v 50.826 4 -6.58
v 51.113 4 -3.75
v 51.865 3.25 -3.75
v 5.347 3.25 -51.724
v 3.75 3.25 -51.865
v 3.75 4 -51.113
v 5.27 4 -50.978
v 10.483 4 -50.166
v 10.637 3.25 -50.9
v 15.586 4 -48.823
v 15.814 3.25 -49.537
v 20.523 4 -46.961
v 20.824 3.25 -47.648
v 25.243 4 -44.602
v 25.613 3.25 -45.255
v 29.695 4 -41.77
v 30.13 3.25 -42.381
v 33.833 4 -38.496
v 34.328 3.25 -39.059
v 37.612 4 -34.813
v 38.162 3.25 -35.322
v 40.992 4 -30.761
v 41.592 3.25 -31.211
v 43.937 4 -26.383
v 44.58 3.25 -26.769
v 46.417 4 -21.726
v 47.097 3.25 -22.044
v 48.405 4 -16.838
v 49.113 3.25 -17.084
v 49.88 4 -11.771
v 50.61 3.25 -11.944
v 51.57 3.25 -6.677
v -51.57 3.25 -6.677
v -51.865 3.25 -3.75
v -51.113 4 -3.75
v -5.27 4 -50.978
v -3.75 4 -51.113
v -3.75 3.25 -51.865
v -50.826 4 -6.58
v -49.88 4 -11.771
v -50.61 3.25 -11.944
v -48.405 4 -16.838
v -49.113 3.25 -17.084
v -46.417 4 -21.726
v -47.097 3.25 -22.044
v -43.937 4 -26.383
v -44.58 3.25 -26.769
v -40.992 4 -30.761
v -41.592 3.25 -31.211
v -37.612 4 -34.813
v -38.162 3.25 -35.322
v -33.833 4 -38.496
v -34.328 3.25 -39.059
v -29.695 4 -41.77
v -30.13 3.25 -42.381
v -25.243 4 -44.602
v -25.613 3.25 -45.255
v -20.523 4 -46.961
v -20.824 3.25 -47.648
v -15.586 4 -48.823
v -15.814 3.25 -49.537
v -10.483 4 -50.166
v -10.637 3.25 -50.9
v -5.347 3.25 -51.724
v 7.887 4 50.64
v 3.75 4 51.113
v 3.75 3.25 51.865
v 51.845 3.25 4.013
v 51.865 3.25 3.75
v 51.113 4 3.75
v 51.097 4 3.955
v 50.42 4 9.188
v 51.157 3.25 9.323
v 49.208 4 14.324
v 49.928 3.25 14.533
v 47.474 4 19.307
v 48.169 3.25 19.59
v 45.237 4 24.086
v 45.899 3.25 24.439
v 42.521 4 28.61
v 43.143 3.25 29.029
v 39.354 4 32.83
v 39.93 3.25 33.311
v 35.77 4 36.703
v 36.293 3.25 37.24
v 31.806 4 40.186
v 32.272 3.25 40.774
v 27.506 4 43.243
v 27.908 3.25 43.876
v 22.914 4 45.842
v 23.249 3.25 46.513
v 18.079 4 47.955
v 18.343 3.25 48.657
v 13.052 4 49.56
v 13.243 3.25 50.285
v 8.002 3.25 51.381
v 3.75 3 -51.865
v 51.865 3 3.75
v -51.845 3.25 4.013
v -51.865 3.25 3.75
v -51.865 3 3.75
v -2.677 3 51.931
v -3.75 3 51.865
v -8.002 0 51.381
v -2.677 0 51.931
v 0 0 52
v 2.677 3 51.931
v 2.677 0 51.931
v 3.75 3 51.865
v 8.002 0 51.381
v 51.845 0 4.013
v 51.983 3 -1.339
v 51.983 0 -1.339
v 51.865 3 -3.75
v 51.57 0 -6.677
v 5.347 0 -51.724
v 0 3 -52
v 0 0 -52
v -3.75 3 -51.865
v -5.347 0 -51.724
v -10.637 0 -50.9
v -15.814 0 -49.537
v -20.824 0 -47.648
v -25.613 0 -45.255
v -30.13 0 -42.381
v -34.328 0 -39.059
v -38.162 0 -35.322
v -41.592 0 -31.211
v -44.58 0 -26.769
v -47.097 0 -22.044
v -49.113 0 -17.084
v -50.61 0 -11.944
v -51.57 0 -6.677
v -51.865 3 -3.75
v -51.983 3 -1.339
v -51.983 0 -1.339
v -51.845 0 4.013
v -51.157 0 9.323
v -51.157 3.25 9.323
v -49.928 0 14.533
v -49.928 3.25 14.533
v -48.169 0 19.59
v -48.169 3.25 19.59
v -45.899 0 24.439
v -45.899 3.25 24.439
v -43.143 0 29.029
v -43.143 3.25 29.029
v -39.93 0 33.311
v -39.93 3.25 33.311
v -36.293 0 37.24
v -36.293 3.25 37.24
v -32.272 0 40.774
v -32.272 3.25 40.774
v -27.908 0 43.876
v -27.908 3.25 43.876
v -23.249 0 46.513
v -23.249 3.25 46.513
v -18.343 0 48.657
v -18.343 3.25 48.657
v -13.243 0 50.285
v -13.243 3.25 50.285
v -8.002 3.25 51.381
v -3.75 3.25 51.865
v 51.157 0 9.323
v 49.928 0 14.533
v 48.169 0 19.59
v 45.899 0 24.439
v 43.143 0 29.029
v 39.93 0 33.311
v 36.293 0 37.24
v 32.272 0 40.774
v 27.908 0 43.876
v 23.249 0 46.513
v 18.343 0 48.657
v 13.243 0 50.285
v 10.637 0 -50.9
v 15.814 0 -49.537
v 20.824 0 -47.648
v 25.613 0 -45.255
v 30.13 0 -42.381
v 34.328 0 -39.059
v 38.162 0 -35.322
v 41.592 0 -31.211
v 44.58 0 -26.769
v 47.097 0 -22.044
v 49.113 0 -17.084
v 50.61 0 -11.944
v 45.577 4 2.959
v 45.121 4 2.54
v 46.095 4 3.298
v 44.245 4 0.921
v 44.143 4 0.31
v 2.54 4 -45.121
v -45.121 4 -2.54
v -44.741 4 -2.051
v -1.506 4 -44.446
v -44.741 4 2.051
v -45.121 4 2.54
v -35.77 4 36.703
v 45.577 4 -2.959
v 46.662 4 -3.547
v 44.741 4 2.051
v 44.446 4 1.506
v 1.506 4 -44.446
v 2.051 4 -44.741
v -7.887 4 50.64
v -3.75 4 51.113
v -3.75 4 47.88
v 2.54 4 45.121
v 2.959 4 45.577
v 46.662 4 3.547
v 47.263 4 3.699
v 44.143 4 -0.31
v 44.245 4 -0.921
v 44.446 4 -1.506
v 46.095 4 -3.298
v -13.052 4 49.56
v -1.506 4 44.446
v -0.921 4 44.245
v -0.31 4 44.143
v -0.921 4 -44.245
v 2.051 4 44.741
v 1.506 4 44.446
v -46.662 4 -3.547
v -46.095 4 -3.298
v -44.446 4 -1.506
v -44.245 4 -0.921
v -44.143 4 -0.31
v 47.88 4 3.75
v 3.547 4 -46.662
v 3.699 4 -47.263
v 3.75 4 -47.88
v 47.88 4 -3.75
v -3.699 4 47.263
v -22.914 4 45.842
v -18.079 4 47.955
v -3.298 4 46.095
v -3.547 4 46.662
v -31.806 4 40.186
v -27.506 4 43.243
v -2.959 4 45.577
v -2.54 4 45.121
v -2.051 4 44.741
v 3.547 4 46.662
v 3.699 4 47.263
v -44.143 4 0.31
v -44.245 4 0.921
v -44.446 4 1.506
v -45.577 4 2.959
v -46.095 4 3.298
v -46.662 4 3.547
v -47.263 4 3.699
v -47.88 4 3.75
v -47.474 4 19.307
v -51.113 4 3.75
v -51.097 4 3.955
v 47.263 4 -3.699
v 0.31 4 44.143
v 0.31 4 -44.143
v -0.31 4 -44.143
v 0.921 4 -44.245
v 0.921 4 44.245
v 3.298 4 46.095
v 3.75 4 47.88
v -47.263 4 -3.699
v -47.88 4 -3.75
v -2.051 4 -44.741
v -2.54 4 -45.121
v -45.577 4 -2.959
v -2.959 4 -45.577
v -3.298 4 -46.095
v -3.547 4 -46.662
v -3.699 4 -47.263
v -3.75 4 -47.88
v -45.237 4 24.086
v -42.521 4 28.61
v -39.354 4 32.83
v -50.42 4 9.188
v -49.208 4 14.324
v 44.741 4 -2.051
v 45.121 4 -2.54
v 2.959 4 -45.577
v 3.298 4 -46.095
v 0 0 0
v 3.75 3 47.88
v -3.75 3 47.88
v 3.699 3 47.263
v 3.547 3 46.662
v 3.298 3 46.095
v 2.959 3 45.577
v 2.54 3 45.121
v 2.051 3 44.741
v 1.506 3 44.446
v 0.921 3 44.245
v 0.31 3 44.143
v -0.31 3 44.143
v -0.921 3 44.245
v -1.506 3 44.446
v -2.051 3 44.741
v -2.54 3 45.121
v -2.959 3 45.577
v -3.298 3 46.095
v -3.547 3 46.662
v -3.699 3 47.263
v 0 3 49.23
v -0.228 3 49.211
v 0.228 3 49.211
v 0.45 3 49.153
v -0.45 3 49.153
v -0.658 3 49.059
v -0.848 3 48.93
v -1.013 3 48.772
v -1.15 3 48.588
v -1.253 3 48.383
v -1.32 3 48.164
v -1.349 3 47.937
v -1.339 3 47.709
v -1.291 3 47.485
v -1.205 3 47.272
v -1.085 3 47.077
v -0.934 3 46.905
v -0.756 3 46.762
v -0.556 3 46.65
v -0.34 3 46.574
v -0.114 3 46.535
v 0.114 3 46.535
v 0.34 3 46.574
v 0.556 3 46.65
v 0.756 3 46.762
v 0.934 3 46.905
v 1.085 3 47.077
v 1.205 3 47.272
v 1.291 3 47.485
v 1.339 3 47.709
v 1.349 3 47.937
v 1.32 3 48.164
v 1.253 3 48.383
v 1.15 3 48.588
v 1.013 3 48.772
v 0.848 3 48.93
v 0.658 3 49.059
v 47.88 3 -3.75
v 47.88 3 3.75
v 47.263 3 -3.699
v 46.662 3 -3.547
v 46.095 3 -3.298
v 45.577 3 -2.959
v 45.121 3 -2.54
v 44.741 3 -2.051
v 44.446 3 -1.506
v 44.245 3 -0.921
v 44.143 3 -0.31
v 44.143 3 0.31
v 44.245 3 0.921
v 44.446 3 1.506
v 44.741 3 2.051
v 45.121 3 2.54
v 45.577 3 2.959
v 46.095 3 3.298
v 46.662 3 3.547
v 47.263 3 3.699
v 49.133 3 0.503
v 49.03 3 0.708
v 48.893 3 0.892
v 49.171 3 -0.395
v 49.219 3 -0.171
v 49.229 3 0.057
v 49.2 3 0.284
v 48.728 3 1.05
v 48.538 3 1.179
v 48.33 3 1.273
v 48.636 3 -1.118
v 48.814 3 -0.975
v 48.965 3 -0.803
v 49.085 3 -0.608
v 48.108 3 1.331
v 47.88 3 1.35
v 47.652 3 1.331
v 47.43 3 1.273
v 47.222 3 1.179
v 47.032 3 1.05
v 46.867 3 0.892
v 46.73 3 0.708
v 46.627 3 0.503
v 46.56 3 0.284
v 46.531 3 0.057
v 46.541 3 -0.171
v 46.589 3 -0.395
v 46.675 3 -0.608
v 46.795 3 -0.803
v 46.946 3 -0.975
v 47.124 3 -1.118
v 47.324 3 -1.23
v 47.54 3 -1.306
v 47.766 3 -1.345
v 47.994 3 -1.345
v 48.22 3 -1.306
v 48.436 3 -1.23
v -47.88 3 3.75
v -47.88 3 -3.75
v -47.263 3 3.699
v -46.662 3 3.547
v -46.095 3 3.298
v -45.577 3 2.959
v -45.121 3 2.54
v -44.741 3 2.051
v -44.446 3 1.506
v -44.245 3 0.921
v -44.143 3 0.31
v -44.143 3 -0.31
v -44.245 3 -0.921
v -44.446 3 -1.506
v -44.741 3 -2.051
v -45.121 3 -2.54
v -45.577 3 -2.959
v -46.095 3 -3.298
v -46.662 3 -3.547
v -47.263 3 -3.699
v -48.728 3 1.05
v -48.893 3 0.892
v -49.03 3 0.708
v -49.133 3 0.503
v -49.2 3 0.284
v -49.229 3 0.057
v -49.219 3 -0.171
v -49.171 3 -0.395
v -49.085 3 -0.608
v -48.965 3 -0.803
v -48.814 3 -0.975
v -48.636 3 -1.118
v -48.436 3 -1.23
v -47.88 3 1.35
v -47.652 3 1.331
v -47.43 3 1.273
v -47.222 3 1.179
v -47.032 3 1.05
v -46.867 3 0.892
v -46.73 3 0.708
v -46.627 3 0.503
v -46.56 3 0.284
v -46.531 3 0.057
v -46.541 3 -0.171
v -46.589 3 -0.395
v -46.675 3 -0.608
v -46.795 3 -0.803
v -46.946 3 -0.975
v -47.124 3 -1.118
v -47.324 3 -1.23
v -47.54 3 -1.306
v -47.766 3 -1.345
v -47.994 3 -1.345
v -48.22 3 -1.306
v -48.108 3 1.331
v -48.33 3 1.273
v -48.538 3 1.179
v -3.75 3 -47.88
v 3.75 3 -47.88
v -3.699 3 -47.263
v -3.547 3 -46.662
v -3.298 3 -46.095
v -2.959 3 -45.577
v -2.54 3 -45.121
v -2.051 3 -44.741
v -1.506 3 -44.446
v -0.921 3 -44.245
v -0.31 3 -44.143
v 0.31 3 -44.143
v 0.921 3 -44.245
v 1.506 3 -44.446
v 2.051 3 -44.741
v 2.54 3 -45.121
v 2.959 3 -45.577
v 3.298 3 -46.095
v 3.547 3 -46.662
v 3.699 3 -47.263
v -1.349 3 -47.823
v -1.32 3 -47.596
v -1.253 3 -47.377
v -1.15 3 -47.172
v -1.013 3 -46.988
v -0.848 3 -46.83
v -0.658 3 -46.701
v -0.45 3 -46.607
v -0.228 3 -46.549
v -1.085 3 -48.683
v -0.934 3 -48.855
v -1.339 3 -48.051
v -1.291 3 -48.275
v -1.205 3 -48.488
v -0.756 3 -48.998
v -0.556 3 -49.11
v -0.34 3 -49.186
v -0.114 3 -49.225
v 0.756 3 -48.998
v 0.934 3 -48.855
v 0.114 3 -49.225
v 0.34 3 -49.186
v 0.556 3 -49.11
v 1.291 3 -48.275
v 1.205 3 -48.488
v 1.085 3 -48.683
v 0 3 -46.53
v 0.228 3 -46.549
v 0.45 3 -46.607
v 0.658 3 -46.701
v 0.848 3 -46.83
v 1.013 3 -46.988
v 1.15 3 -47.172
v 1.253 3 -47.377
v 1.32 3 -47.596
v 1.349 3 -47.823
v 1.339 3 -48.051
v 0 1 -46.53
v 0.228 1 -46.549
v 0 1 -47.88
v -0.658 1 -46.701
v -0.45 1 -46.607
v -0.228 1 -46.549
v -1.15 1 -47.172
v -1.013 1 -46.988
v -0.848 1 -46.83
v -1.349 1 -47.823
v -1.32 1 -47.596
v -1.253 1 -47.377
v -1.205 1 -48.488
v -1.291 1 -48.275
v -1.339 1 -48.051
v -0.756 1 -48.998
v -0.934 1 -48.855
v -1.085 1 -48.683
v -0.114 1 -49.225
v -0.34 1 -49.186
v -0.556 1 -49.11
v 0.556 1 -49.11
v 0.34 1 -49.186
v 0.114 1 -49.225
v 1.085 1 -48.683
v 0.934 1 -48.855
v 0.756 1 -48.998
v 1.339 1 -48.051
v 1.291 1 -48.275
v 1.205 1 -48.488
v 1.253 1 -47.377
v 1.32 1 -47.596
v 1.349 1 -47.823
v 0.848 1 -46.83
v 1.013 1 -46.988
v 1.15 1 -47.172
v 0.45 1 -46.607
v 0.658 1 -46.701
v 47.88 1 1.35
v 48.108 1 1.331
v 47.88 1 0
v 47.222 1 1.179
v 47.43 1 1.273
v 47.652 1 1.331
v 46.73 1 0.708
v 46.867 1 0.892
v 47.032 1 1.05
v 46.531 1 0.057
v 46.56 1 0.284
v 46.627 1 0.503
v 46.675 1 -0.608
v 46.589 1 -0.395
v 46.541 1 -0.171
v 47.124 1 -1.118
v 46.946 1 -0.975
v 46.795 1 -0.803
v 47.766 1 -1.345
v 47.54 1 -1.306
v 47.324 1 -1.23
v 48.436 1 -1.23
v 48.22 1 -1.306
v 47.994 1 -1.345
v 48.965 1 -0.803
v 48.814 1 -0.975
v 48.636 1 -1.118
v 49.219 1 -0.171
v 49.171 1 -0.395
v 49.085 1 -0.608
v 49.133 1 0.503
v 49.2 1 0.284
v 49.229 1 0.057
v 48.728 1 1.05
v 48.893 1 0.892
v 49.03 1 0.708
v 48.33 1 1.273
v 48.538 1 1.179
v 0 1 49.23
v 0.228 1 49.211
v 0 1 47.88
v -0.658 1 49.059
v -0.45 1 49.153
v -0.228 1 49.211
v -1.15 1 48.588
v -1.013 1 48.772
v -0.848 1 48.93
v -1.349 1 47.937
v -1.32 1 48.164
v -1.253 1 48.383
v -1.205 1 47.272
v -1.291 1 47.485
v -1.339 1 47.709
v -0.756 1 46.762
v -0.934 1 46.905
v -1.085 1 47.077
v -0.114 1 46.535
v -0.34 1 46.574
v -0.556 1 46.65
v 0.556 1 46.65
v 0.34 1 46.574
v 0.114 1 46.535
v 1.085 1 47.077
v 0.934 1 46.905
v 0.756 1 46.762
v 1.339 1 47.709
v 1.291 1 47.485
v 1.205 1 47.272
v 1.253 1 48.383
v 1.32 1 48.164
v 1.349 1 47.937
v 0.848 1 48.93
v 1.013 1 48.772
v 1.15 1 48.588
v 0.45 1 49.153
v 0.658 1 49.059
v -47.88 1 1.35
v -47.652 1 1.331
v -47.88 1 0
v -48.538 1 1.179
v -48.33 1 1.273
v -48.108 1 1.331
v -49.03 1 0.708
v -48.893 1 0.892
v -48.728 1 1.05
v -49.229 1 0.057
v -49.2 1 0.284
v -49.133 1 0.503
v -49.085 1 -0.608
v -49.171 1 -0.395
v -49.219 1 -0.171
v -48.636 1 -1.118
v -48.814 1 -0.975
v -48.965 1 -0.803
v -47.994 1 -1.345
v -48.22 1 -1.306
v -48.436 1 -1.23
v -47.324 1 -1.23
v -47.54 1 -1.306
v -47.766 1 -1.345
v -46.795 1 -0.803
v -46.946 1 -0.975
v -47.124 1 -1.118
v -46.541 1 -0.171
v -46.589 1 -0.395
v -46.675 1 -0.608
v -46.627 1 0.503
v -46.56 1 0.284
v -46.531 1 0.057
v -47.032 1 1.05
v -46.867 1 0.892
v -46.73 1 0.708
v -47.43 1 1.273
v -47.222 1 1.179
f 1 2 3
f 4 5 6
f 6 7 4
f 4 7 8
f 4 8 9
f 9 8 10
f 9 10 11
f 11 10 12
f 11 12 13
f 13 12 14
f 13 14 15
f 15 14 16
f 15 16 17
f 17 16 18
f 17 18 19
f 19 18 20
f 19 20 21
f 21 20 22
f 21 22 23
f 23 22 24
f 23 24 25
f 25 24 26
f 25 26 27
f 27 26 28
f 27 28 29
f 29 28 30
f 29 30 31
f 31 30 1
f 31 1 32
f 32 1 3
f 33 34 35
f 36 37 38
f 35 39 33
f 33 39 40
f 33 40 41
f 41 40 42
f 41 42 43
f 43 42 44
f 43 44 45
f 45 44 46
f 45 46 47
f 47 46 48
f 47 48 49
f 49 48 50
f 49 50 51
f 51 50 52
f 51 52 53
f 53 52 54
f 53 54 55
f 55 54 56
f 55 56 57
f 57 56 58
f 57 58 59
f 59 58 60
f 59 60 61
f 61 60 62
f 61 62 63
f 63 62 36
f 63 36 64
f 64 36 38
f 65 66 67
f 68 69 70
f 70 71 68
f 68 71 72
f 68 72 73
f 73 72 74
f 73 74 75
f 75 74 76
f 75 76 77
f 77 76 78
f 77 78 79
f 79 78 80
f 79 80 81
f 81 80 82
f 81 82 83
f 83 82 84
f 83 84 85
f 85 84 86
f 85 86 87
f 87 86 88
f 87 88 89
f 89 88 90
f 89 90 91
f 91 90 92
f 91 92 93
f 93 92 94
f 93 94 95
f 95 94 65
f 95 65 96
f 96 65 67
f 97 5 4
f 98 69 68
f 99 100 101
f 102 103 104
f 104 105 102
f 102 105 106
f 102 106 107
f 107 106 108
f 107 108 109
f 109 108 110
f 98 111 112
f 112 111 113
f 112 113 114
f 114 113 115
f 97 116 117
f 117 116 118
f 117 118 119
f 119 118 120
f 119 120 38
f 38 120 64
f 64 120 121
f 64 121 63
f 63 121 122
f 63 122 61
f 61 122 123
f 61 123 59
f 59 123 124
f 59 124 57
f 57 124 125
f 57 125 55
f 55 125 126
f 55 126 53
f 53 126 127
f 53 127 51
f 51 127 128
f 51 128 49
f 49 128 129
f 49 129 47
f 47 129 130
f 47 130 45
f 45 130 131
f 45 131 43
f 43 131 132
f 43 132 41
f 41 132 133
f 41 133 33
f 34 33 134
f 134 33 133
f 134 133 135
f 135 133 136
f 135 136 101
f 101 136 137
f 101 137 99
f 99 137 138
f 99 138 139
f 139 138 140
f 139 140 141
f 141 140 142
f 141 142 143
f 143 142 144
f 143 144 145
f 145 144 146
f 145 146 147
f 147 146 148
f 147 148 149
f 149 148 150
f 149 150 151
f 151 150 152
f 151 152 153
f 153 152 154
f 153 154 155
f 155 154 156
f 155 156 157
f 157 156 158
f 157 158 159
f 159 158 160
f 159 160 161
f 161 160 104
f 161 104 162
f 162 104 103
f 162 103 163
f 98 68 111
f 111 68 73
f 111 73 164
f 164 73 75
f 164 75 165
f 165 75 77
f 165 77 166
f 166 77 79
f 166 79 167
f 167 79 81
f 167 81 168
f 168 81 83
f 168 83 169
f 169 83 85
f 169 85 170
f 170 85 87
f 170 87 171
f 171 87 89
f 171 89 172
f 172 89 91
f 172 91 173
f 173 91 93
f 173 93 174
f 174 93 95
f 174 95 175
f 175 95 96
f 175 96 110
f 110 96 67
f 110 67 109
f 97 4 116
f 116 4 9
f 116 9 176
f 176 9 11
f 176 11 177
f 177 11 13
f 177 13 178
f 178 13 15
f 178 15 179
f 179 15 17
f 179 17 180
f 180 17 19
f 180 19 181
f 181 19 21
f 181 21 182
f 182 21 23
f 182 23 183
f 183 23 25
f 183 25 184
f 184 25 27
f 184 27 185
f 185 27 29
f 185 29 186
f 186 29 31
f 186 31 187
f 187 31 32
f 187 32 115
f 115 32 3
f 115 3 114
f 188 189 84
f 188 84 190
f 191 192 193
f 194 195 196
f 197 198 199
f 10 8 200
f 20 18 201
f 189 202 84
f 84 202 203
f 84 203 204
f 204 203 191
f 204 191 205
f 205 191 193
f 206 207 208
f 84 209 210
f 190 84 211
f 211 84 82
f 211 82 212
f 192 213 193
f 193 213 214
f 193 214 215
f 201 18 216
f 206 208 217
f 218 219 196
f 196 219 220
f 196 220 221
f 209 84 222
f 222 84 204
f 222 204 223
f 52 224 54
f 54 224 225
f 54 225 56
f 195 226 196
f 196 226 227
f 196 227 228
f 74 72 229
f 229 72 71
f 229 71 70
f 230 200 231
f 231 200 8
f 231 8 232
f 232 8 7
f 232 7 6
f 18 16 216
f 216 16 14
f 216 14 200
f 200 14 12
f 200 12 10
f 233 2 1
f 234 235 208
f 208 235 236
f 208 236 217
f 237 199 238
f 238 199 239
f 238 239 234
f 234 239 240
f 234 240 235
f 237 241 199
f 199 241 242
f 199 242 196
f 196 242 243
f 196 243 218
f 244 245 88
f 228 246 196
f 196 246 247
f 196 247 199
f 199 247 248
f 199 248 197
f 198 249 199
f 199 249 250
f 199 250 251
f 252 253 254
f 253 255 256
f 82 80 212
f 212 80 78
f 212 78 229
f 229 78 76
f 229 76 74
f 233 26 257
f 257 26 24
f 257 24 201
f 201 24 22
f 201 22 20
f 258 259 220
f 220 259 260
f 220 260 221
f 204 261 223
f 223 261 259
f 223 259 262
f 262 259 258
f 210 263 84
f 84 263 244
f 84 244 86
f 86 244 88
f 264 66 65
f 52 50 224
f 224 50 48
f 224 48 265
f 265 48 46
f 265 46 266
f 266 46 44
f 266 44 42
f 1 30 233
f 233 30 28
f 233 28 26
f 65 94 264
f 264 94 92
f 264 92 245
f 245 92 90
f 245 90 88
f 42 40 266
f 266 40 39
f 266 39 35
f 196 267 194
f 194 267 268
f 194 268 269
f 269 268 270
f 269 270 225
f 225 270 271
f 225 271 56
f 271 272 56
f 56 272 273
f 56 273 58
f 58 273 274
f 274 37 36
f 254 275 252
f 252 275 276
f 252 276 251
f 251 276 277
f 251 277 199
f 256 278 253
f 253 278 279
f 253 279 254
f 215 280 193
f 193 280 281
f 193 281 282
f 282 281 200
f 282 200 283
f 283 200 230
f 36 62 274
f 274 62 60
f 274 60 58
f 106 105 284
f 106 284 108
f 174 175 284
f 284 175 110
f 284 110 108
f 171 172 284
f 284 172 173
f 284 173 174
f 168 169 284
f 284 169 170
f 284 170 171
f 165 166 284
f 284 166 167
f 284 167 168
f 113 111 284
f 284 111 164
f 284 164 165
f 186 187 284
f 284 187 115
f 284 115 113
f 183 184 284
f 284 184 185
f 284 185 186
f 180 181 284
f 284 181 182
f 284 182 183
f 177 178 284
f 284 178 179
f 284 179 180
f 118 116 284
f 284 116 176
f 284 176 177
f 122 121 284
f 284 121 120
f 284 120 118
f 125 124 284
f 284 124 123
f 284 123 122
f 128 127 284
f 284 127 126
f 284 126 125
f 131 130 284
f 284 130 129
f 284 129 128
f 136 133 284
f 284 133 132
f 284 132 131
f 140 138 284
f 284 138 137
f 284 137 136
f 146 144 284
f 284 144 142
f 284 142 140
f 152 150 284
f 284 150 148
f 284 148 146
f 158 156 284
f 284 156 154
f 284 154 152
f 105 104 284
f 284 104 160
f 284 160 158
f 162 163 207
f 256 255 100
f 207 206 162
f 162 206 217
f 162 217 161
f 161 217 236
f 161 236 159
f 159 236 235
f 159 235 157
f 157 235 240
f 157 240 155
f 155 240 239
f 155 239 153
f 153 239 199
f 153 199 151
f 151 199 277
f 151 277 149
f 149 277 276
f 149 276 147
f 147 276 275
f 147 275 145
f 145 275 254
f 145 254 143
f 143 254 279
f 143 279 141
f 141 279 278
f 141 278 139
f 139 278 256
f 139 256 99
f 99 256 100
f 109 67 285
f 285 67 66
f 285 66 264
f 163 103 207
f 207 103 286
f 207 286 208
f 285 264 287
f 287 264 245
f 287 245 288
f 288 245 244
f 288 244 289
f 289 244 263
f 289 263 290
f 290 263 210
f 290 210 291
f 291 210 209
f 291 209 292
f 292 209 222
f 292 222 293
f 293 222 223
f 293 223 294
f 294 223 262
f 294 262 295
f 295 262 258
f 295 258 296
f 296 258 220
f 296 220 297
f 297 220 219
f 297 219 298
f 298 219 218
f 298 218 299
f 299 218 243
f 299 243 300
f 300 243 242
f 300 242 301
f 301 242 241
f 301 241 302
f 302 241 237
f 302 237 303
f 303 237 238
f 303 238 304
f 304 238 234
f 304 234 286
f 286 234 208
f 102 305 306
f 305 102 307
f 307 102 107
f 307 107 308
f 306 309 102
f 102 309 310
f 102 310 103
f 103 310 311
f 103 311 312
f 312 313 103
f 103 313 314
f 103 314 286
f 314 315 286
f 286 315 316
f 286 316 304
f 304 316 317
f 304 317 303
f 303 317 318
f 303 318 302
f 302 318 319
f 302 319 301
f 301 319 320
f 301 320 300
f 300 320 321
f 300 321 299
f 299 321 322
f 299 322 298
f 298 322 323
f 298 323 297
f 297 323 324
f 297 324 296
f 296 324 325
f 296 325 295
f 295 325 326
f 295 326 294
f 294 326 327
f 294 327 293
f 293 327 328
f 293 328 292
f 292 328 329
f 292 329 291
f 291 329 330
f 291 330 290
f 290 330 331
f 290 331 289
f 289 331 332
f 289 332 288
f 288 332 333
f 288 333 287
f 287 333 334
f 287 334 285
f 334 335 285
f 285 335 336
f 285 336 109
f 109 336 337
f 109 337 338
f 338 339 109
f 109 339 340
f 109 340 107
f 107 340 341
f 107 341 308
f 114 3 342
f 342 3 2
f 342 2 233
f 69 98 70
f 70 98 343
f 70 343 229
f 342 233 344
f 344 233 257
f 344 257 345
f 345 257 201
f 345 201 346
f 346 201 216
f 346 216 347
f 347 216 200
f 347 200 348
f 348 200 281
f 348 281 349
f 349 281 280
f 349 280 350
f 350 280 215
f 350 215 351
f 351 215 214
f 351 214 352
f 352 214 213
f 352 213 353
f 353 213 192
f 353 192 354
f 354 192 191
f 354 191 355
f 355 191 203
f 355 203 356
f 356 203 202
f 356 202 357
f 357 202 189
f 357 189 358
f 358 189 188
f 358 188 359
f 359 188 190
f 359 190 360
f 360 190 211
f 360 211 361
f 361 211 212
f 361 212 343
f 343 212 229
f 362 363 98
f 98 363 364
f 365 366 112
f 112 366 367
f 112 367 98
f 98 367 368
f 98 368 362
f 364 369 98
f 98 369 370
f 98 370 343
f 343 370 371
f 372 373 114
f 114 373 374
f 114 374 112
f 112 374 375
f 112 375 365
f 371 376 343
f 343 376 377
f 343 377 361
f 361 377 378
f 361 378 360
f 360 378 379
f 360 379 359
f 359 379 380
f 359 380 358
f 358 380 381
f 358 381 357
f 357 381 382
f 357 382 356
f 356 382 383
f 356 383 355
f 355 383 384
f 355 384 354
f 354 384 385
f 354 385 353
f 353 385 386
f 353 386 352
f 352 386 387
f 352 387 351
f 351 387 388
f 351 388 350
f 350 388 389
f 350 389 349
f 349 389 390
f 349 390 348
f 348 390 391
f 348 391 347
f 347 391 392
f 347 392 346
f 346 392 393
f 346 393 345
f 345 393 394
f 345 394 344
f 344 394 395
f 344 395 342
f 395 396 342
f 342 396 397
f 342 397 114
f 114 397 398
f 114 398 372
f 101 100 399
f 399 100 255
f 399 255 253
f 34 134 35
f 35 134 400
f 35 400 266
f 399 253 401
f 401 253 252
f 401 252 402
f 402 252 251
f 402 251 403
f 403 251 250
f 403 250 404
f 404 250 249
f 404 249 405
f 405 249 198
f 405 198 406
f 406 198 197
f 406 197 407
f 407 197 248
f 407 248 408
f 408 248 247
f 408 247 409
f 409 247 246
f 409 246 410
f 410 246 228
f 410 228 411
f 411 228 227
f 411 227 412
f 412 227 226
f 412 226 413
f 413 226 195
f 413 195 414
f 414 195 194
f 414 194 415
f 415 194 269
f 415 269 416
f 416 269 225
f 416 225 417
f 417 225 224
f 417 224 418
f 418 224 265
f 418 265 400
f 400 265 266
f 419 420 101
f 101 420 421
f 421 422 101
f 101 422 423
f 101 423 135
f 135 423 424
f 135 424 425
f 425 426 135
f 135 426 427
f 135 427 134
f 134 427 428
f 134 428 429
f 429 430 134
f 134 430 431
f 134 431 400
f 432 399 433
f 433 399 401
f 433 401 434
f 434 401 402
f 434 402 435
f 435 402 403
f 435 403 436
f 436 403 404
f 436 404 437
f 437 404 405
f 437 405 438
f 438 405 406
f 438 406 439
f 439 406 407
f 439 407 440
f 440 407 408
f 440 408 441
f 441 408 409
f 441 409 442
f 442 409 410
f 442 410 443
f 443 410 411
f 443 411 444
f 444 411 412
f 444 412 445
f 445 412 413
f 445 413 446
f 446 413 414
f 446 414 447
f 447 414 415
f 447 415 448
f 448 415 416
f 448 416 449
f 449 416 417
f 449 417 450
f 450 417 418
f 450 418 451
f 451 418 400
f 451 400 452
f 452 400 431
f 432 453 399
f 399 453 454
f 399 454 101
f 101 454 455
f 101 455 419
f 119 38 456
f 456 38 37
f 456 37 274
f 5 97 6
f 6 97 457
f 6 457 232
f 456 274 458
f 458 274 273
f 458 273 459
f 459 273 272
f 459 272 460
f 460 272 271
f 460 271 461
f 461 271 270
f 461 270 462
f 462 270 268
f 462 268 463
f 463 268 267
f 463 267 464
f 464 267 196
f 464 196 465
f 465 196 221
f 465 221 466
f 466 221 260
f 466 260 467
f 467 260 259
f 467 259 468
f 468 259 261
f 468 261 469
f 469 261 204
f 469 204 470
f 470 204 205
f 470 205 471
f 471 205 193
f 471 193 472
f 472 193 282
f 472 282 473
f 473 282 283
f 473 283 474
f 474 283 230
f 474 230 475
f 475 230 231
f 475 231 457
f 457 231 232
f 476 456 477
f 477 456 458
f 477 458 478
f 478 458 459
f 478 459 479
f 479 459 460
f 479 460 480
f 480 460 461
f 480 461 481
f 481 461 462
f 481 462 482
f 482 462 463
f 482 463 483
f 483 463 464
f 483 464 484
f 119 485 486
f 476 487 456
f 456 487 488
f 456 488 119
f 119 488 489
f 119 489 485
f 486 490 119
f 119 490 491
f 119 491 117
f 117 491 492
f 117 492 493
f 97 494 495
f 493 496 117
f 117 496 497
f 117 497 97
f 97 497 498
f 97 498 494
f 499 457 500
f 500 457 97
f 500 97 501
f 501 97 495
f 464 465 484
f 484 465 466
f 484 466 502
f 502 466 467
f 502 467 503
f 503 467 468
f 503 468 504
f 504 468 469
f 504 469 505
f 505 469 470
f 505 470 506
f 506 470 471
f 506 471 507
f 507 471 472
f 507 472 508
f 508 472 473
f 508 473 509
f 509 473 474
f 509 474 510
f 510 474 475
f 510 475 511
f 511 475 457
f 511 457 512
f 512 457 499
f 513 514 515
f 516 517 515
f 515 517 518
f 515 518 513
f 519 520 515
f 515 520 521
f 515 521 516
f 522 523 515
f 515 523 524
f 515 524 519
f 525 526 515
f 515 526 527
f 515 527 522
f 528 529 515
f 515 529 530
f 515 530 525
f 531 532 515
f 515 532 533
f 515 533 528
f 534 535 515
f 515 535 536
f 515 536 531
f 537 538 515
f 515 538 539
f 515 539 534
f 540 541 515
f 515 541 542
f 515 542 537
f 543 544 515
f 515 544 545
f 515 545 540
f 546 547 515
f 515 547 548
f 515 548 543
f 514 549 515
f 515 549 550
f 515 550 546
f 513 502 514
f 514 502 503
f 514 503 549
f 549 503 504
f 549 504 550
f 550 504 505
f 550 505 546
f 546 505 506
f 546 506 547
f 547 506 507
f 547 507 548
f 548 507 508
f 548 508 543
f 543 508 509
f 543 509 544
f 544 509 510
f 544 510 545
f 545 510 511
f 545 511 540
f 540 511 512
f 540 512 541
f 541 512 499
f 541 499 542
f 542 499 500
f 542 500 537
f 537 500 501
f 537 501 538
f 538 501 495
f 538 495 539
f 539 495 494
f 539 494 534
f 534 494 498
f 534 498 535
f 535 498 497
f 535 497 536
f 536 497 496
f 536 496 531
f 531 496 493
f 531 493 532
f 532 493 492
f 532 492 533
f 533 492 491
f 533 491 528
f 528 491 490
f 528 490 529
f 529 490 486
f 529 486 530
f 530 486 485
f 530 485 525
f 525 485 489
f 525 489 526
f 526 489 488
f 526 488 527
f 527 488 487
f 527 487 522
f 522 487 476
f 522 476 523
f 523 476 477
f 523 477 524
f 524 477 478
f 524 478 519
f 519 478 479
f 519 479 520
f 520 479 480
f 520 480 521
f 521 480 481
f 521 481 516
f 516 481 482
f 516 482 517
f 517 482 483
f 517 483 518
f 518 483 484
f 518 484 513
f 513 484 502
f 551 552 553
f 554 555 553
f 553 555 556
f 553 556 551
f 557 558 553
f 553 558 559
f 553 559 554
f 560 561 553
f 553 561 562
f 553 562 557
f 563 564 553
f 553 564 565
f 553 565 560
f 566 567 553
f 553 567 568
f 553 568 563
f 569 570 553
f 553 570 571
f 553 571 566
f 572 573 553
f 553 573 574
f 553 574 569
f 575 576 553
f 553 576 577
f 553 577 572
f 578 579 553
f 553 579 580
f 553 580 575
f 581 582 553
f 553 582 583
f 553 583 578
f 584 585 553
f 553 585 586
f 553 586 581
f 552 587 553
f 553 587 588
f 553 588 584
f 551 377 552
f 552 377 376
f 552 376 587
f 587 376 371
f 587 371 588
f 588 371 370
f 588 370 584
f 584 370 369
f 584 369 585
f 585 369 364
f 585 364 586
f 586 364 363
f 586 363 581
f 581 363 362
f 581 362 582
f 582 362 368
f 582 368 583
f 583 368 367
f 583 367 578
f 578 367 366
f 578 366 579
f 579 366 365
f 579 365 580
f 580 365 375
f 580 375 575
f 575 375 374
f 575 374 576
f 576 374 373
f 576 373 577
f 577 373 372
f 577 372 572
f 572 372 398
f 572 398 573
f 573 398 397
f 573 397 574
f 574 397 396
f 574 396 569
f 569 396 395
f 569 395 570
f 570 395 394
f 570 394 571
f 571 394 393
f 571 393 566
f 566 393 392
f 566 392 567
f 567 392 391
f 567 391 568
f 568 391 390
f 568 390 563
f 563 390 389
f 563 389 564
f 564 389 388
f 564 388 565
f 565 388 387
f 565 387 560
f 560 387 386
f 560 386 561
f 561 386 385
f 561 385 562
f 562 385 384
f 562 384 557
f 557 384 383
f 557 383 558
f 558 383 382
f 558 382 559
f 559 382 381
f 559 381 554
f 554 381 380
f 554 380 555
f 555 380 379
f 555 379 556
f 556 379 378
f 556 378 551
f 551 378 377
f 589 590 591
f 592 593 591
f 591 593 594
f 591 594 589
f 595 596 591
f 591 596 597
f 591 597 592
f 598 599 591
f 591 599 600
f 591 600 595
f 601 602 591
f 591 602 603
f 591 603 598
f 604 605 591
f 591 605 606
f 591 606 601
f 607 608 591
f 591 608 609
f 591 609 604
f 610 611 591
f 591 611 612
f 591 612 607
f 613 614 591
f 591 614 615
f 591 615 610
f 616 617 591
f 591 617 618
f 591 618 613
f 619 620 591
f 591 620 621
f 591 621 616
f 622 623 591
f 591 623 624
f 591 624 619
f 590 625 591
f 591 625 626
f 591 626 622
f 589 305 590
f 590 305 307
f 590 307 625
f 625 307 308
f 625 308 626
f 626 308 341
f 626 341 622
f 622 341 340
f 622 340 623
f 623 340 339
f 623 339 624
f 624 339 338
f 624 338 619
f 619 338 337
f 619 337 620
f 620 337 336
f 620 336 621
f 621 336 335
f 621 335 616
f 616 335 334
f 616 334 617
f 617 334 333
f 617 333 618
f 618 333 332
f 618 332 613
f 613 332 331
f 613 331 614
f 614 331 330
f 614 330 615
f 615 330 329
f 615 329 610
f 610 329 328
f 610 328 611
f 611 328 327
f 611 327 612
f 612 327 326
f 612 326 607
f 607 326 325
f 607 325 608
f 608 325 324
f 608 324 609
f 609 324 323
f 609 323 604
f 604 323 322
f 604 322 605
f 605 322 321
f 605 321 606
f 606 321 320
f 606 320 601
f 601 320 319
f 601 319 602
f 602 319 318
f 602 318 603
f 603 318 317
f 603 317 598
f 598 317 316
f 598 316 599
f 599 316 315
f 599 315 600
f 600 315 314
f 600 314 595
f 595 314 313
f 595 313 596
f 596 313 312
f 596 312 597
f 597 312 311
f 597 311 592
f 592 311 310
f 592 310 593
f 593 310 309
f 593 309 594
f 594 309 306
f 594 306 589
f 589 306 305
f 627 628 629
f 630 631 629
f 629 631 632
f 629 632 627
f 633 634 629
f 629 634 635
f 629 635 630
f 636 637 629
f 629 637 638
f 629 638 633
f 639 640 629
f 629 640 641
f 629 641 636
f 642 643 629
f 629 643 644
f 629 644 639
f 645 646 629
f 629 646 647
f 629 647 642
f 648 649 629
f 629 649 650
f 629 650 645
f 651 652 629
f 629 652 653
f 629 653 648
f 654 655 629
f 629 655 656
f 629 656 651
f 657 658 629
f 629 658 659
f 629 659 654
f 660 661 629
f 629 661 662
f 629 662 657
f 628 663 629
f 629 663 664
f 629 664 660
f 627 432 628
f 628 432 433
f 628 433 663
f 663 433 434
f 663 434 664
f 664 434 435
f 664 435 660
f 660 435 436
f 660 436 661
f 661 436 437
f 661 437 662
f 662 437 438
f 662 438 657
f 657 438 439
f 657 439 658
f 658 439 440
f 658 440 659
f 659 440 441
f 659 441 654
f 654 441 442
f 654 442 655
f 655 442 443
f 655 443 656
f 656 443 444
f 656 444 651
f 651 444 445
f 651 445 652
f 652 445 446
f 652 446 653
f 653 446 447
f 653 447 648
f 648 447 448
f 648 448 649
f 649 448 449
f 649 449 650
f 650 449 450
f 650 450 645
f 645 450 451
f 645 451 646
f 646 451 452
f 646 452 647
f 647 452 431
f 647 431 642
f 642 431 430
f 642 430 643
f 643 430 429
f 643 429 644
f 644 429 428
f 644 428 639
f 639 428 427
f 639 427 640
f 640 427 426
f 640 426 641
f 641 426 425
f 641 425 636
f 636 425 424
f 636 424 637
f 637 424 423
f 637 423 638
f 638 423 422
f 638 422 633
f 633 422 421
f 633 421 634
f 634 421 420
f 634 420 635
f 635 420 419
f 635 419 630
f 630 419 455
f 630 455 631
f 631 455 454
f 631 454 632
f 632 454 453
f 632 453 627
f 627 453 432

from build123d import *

# Parameters (mm, degrees)
SKETCH1_R           = 52
BOSS_EXTRUDE1_DEPTH = 4
SKETCH2_R           = 1.35
CUT_EXTRUDE2_DEPTH  = 3
CHAMFER1_SIZE       = 0.75
SKETCH3_R           = 1.35
CUT_EXTRUDE3_DEPTH  = 1


with BuildPart() as part:
    # Sketch1 → Boss-Extrude1 (new body)
    with BuildSketch(Plane(origin=(0, 0, 0), x_dir=(1, 0, 0), z_dir=(0, 1, 0))):
        with Locations(Location((0, 0, 0), (0, 0, 270))):
            Circle(SKETCH1_R)
    extrude(amount=BOSS_EXTRUDE1_DEPTH)

    # Sketch2 → Cut-Extrude2 (cut)
    with BuildSketch(Plane(origin=(0, 4, 0), x_dir=(1, 0, 0), z_dir=(0, 1, 0))):
        with Locations(Location((0, 47.88, 0), (0, 0, 270))):
            Circle(SKETCH2_R)
        with Locations(Location((47.88, 0, 0), (0, 0, 270))):
            Circle(SKETCH2_R)
        with Locations(Location((0, -47.88, 0), (0, 0, 270))):
            Circle(SKETCH2_R)
        with Locations(Location((-47.88, 0, 0), (0, 0, 270))):
            Circle(SKETCH2_R)
    extrude(amount=-CUT_EXTRUDE2_DEPTH, mode=Mode.SUBTRACT)

    # Chamfer1
    chamfer1_edges = [part.edges().sort_by_distance(p)[0] for p in [
        (0, 4, -52),
    ]]
    chamfer(chamfer1_edges, length=CHAMFER1_SIZE)

    # Sketch3 → Cut-Extrude3 (cut)
    # profile 1 of 8: a face of its own
    with BuildSketch(Plane(origin=(0, 4, 0), x_dir=(1, 0, 0), z_dir=(0, 1, 0))):
        with BuildLine():
            ThreePointArc((3.75, 51.112620751), (0, 51.25), (-3.75, 51.112620751))
            Line((-3.75, 51.112620751), (-3.75, 47.88))
            ThreePointArc((-3.75, 47.88), (0, 44.13), (3.75, 47.88))
            Line((3.75, 47.88), (3.75, 51.112620751))
        make_face()
        with Locations(Location((0, 47.88, 0), (0, 0, 270))):
            Circle(SKETCH3_R, mode=Mode.SUBTRACT)
    # profile 2 of 8: a face of its own
    with BuildSketch(Plane(origin=(0, 4, 0), x_dir=(1, 0, 0), z_dir=(0, 1, 0))):
        with BuildLine():
            Line((-47.88, 3.75), (-51.112620751, 3.75))
            ThreePointArc((-51.112620751, 3.75), (-51.25, 0), (-51.112620751, -3.75))
            Line((-51.112620751, -3.75), (-47.88, -3.75))
            ThreePointArc((-47.88, -3.75), (-44.13, 0), (-47.88, 3.75))
        make_face()
        with Locations(Location((-47.88, 0, 0), (0, 0, 270))):
            Circle(SKETCH3_R, mode=Mode.SUBTRACT)
    # profile 3 of 8: a face of its own
    with BuildSketch(Plane(origin=(0, 4, 0), x_dir=(1, 0, 0), z_dir=(0, 1, 0))):
        with BuildLine():
            ThreePointArc((51.25, 0), (51.215643672, 1.876257782), (51.112620751, 3.75))
            Line((51.112620751, 3.75), (47.88, 3.75))
            ThreePointArc((47.88, 3.75), (44.13, 0), (47.88, -3.75))
            Line((47.88, -3.75), (51.112620751, -3.75))
            ThreePointArc((51.112620751, -3.75), (51.215643672, -1.876257782), (51.25, 0))
        make_face()
        with Locations(Location((47.88, 0, 0), (0, 0, 270))):
            Circle(SKETCH3_R, mode=Mode.SUBTRACT)
    # profile 4 of 8: a face of its own
    with BuildSketch(Plane(origin=(0, 4, 0), x_dir=(1, 0, 0), z_dir=(0, 1, 0))):
        with BuildLine():
            ThreePointArc((3.75, 51.864607393), (0, 52), (-3.75, 51.864607393))
            Line((-3.75, 51.864607393), (-3.75, 51.112620751))
            ThreePointArc((-3.75, 51.112620751), (0, 51.25), (3.75, 51.112620751))
            Line((3.75, 51.112620751), (3.75, 51.864607393))
        make_face()
    # profile 5 of 8: a face of its own
    with BuildSketch(Plane(origin=(0, 4, 0), x_dir=(1, 0, 0), z_dir=(0, 1, 0))):
        with BuildLine():
            ThreePointArc((-51.112620751, -3.75), (-51.25, 0), (-51.112620751, 3.75))
            Line((-51.112620751, 3.75), (-51.864607393, 3.75))
            ThreePointArc((-51.864607393, 3.75), (-52, 0), (-51.864607393, -3.75))
            Line((-51.864607393, -3.75), (-51.112620751, -3.75))
        make_face()
    # profile 6 of 8: a face of its own
    with BuildSketch(Plane(origin=(0, 4, 0), x_dir=(1, 0, 0), z_dir=(0, 1, 0))):
        with BuildLine():
            Line((51.864607393, 3.75), (51.112620751, 3.75))
            ThreePointArc((51.112620751, 3.75), (51.215643672, 1.876257782), (51.25, 0))
            ThreePointArc((51.25, 0), (51.215643672, -1.876257782), (51.112620751, -3.75))
            Line((51.112620751, -3.75), (51.864607393, -3.75))
            ThreePointArc((51.864607393, -3.75), (52, 0), (51.864607393, 3.75))
        make_face()
    # profile 7 of 8: a face of its own
    with BuildSketch(Plane(origin=(0, 4, 0), x_dir=(1, 0, 0), z_dir=(0, 1, 0))):
        with BuildLine():
            Line((-3.75, -47.88), (-3.75, -51.112620751))
            ThreePointArc((-3.75, -51.112620751), (0, -51.25), (3.75, -51.112620751))
            Line((3.75, -51.112620751), (3.75, -47.88))
            ThreePointArc((3.75, -47.88), (0, -44.13), (-3.75, -47.88))
        make_face()
        with Locations(Location((0, -47.88, 0), (0, 0, 270))):
            Circle(SKETCH3_R, mode=Mode.SUBTRACT)
    # profile 8 of 8: a face of its own
    with BuildSketch(Plane(origin=(0, 4, 0), x_dir=(1, 0, 0), z_dir=(0, 1, 0))):
        with BuildLine():
            ThreePointArc((3.75, -51.112620751), (0, -51.25), (-3.75, -51.112620751))
            Line((-3.75, -51.112620751), (-3.75, -51.864607393))
            ThreePointArc((-3.75, -51.864607393), (0, -52), (3.75, -51.864607393))
            Line((3.75, -51.864607393), (3.75, -51.112620751))
        make_face()
    extrude(amount=-CUT_EXTRUDE3_DEPTH, mode=Mode.SUBTRACT)


solid = part.part
